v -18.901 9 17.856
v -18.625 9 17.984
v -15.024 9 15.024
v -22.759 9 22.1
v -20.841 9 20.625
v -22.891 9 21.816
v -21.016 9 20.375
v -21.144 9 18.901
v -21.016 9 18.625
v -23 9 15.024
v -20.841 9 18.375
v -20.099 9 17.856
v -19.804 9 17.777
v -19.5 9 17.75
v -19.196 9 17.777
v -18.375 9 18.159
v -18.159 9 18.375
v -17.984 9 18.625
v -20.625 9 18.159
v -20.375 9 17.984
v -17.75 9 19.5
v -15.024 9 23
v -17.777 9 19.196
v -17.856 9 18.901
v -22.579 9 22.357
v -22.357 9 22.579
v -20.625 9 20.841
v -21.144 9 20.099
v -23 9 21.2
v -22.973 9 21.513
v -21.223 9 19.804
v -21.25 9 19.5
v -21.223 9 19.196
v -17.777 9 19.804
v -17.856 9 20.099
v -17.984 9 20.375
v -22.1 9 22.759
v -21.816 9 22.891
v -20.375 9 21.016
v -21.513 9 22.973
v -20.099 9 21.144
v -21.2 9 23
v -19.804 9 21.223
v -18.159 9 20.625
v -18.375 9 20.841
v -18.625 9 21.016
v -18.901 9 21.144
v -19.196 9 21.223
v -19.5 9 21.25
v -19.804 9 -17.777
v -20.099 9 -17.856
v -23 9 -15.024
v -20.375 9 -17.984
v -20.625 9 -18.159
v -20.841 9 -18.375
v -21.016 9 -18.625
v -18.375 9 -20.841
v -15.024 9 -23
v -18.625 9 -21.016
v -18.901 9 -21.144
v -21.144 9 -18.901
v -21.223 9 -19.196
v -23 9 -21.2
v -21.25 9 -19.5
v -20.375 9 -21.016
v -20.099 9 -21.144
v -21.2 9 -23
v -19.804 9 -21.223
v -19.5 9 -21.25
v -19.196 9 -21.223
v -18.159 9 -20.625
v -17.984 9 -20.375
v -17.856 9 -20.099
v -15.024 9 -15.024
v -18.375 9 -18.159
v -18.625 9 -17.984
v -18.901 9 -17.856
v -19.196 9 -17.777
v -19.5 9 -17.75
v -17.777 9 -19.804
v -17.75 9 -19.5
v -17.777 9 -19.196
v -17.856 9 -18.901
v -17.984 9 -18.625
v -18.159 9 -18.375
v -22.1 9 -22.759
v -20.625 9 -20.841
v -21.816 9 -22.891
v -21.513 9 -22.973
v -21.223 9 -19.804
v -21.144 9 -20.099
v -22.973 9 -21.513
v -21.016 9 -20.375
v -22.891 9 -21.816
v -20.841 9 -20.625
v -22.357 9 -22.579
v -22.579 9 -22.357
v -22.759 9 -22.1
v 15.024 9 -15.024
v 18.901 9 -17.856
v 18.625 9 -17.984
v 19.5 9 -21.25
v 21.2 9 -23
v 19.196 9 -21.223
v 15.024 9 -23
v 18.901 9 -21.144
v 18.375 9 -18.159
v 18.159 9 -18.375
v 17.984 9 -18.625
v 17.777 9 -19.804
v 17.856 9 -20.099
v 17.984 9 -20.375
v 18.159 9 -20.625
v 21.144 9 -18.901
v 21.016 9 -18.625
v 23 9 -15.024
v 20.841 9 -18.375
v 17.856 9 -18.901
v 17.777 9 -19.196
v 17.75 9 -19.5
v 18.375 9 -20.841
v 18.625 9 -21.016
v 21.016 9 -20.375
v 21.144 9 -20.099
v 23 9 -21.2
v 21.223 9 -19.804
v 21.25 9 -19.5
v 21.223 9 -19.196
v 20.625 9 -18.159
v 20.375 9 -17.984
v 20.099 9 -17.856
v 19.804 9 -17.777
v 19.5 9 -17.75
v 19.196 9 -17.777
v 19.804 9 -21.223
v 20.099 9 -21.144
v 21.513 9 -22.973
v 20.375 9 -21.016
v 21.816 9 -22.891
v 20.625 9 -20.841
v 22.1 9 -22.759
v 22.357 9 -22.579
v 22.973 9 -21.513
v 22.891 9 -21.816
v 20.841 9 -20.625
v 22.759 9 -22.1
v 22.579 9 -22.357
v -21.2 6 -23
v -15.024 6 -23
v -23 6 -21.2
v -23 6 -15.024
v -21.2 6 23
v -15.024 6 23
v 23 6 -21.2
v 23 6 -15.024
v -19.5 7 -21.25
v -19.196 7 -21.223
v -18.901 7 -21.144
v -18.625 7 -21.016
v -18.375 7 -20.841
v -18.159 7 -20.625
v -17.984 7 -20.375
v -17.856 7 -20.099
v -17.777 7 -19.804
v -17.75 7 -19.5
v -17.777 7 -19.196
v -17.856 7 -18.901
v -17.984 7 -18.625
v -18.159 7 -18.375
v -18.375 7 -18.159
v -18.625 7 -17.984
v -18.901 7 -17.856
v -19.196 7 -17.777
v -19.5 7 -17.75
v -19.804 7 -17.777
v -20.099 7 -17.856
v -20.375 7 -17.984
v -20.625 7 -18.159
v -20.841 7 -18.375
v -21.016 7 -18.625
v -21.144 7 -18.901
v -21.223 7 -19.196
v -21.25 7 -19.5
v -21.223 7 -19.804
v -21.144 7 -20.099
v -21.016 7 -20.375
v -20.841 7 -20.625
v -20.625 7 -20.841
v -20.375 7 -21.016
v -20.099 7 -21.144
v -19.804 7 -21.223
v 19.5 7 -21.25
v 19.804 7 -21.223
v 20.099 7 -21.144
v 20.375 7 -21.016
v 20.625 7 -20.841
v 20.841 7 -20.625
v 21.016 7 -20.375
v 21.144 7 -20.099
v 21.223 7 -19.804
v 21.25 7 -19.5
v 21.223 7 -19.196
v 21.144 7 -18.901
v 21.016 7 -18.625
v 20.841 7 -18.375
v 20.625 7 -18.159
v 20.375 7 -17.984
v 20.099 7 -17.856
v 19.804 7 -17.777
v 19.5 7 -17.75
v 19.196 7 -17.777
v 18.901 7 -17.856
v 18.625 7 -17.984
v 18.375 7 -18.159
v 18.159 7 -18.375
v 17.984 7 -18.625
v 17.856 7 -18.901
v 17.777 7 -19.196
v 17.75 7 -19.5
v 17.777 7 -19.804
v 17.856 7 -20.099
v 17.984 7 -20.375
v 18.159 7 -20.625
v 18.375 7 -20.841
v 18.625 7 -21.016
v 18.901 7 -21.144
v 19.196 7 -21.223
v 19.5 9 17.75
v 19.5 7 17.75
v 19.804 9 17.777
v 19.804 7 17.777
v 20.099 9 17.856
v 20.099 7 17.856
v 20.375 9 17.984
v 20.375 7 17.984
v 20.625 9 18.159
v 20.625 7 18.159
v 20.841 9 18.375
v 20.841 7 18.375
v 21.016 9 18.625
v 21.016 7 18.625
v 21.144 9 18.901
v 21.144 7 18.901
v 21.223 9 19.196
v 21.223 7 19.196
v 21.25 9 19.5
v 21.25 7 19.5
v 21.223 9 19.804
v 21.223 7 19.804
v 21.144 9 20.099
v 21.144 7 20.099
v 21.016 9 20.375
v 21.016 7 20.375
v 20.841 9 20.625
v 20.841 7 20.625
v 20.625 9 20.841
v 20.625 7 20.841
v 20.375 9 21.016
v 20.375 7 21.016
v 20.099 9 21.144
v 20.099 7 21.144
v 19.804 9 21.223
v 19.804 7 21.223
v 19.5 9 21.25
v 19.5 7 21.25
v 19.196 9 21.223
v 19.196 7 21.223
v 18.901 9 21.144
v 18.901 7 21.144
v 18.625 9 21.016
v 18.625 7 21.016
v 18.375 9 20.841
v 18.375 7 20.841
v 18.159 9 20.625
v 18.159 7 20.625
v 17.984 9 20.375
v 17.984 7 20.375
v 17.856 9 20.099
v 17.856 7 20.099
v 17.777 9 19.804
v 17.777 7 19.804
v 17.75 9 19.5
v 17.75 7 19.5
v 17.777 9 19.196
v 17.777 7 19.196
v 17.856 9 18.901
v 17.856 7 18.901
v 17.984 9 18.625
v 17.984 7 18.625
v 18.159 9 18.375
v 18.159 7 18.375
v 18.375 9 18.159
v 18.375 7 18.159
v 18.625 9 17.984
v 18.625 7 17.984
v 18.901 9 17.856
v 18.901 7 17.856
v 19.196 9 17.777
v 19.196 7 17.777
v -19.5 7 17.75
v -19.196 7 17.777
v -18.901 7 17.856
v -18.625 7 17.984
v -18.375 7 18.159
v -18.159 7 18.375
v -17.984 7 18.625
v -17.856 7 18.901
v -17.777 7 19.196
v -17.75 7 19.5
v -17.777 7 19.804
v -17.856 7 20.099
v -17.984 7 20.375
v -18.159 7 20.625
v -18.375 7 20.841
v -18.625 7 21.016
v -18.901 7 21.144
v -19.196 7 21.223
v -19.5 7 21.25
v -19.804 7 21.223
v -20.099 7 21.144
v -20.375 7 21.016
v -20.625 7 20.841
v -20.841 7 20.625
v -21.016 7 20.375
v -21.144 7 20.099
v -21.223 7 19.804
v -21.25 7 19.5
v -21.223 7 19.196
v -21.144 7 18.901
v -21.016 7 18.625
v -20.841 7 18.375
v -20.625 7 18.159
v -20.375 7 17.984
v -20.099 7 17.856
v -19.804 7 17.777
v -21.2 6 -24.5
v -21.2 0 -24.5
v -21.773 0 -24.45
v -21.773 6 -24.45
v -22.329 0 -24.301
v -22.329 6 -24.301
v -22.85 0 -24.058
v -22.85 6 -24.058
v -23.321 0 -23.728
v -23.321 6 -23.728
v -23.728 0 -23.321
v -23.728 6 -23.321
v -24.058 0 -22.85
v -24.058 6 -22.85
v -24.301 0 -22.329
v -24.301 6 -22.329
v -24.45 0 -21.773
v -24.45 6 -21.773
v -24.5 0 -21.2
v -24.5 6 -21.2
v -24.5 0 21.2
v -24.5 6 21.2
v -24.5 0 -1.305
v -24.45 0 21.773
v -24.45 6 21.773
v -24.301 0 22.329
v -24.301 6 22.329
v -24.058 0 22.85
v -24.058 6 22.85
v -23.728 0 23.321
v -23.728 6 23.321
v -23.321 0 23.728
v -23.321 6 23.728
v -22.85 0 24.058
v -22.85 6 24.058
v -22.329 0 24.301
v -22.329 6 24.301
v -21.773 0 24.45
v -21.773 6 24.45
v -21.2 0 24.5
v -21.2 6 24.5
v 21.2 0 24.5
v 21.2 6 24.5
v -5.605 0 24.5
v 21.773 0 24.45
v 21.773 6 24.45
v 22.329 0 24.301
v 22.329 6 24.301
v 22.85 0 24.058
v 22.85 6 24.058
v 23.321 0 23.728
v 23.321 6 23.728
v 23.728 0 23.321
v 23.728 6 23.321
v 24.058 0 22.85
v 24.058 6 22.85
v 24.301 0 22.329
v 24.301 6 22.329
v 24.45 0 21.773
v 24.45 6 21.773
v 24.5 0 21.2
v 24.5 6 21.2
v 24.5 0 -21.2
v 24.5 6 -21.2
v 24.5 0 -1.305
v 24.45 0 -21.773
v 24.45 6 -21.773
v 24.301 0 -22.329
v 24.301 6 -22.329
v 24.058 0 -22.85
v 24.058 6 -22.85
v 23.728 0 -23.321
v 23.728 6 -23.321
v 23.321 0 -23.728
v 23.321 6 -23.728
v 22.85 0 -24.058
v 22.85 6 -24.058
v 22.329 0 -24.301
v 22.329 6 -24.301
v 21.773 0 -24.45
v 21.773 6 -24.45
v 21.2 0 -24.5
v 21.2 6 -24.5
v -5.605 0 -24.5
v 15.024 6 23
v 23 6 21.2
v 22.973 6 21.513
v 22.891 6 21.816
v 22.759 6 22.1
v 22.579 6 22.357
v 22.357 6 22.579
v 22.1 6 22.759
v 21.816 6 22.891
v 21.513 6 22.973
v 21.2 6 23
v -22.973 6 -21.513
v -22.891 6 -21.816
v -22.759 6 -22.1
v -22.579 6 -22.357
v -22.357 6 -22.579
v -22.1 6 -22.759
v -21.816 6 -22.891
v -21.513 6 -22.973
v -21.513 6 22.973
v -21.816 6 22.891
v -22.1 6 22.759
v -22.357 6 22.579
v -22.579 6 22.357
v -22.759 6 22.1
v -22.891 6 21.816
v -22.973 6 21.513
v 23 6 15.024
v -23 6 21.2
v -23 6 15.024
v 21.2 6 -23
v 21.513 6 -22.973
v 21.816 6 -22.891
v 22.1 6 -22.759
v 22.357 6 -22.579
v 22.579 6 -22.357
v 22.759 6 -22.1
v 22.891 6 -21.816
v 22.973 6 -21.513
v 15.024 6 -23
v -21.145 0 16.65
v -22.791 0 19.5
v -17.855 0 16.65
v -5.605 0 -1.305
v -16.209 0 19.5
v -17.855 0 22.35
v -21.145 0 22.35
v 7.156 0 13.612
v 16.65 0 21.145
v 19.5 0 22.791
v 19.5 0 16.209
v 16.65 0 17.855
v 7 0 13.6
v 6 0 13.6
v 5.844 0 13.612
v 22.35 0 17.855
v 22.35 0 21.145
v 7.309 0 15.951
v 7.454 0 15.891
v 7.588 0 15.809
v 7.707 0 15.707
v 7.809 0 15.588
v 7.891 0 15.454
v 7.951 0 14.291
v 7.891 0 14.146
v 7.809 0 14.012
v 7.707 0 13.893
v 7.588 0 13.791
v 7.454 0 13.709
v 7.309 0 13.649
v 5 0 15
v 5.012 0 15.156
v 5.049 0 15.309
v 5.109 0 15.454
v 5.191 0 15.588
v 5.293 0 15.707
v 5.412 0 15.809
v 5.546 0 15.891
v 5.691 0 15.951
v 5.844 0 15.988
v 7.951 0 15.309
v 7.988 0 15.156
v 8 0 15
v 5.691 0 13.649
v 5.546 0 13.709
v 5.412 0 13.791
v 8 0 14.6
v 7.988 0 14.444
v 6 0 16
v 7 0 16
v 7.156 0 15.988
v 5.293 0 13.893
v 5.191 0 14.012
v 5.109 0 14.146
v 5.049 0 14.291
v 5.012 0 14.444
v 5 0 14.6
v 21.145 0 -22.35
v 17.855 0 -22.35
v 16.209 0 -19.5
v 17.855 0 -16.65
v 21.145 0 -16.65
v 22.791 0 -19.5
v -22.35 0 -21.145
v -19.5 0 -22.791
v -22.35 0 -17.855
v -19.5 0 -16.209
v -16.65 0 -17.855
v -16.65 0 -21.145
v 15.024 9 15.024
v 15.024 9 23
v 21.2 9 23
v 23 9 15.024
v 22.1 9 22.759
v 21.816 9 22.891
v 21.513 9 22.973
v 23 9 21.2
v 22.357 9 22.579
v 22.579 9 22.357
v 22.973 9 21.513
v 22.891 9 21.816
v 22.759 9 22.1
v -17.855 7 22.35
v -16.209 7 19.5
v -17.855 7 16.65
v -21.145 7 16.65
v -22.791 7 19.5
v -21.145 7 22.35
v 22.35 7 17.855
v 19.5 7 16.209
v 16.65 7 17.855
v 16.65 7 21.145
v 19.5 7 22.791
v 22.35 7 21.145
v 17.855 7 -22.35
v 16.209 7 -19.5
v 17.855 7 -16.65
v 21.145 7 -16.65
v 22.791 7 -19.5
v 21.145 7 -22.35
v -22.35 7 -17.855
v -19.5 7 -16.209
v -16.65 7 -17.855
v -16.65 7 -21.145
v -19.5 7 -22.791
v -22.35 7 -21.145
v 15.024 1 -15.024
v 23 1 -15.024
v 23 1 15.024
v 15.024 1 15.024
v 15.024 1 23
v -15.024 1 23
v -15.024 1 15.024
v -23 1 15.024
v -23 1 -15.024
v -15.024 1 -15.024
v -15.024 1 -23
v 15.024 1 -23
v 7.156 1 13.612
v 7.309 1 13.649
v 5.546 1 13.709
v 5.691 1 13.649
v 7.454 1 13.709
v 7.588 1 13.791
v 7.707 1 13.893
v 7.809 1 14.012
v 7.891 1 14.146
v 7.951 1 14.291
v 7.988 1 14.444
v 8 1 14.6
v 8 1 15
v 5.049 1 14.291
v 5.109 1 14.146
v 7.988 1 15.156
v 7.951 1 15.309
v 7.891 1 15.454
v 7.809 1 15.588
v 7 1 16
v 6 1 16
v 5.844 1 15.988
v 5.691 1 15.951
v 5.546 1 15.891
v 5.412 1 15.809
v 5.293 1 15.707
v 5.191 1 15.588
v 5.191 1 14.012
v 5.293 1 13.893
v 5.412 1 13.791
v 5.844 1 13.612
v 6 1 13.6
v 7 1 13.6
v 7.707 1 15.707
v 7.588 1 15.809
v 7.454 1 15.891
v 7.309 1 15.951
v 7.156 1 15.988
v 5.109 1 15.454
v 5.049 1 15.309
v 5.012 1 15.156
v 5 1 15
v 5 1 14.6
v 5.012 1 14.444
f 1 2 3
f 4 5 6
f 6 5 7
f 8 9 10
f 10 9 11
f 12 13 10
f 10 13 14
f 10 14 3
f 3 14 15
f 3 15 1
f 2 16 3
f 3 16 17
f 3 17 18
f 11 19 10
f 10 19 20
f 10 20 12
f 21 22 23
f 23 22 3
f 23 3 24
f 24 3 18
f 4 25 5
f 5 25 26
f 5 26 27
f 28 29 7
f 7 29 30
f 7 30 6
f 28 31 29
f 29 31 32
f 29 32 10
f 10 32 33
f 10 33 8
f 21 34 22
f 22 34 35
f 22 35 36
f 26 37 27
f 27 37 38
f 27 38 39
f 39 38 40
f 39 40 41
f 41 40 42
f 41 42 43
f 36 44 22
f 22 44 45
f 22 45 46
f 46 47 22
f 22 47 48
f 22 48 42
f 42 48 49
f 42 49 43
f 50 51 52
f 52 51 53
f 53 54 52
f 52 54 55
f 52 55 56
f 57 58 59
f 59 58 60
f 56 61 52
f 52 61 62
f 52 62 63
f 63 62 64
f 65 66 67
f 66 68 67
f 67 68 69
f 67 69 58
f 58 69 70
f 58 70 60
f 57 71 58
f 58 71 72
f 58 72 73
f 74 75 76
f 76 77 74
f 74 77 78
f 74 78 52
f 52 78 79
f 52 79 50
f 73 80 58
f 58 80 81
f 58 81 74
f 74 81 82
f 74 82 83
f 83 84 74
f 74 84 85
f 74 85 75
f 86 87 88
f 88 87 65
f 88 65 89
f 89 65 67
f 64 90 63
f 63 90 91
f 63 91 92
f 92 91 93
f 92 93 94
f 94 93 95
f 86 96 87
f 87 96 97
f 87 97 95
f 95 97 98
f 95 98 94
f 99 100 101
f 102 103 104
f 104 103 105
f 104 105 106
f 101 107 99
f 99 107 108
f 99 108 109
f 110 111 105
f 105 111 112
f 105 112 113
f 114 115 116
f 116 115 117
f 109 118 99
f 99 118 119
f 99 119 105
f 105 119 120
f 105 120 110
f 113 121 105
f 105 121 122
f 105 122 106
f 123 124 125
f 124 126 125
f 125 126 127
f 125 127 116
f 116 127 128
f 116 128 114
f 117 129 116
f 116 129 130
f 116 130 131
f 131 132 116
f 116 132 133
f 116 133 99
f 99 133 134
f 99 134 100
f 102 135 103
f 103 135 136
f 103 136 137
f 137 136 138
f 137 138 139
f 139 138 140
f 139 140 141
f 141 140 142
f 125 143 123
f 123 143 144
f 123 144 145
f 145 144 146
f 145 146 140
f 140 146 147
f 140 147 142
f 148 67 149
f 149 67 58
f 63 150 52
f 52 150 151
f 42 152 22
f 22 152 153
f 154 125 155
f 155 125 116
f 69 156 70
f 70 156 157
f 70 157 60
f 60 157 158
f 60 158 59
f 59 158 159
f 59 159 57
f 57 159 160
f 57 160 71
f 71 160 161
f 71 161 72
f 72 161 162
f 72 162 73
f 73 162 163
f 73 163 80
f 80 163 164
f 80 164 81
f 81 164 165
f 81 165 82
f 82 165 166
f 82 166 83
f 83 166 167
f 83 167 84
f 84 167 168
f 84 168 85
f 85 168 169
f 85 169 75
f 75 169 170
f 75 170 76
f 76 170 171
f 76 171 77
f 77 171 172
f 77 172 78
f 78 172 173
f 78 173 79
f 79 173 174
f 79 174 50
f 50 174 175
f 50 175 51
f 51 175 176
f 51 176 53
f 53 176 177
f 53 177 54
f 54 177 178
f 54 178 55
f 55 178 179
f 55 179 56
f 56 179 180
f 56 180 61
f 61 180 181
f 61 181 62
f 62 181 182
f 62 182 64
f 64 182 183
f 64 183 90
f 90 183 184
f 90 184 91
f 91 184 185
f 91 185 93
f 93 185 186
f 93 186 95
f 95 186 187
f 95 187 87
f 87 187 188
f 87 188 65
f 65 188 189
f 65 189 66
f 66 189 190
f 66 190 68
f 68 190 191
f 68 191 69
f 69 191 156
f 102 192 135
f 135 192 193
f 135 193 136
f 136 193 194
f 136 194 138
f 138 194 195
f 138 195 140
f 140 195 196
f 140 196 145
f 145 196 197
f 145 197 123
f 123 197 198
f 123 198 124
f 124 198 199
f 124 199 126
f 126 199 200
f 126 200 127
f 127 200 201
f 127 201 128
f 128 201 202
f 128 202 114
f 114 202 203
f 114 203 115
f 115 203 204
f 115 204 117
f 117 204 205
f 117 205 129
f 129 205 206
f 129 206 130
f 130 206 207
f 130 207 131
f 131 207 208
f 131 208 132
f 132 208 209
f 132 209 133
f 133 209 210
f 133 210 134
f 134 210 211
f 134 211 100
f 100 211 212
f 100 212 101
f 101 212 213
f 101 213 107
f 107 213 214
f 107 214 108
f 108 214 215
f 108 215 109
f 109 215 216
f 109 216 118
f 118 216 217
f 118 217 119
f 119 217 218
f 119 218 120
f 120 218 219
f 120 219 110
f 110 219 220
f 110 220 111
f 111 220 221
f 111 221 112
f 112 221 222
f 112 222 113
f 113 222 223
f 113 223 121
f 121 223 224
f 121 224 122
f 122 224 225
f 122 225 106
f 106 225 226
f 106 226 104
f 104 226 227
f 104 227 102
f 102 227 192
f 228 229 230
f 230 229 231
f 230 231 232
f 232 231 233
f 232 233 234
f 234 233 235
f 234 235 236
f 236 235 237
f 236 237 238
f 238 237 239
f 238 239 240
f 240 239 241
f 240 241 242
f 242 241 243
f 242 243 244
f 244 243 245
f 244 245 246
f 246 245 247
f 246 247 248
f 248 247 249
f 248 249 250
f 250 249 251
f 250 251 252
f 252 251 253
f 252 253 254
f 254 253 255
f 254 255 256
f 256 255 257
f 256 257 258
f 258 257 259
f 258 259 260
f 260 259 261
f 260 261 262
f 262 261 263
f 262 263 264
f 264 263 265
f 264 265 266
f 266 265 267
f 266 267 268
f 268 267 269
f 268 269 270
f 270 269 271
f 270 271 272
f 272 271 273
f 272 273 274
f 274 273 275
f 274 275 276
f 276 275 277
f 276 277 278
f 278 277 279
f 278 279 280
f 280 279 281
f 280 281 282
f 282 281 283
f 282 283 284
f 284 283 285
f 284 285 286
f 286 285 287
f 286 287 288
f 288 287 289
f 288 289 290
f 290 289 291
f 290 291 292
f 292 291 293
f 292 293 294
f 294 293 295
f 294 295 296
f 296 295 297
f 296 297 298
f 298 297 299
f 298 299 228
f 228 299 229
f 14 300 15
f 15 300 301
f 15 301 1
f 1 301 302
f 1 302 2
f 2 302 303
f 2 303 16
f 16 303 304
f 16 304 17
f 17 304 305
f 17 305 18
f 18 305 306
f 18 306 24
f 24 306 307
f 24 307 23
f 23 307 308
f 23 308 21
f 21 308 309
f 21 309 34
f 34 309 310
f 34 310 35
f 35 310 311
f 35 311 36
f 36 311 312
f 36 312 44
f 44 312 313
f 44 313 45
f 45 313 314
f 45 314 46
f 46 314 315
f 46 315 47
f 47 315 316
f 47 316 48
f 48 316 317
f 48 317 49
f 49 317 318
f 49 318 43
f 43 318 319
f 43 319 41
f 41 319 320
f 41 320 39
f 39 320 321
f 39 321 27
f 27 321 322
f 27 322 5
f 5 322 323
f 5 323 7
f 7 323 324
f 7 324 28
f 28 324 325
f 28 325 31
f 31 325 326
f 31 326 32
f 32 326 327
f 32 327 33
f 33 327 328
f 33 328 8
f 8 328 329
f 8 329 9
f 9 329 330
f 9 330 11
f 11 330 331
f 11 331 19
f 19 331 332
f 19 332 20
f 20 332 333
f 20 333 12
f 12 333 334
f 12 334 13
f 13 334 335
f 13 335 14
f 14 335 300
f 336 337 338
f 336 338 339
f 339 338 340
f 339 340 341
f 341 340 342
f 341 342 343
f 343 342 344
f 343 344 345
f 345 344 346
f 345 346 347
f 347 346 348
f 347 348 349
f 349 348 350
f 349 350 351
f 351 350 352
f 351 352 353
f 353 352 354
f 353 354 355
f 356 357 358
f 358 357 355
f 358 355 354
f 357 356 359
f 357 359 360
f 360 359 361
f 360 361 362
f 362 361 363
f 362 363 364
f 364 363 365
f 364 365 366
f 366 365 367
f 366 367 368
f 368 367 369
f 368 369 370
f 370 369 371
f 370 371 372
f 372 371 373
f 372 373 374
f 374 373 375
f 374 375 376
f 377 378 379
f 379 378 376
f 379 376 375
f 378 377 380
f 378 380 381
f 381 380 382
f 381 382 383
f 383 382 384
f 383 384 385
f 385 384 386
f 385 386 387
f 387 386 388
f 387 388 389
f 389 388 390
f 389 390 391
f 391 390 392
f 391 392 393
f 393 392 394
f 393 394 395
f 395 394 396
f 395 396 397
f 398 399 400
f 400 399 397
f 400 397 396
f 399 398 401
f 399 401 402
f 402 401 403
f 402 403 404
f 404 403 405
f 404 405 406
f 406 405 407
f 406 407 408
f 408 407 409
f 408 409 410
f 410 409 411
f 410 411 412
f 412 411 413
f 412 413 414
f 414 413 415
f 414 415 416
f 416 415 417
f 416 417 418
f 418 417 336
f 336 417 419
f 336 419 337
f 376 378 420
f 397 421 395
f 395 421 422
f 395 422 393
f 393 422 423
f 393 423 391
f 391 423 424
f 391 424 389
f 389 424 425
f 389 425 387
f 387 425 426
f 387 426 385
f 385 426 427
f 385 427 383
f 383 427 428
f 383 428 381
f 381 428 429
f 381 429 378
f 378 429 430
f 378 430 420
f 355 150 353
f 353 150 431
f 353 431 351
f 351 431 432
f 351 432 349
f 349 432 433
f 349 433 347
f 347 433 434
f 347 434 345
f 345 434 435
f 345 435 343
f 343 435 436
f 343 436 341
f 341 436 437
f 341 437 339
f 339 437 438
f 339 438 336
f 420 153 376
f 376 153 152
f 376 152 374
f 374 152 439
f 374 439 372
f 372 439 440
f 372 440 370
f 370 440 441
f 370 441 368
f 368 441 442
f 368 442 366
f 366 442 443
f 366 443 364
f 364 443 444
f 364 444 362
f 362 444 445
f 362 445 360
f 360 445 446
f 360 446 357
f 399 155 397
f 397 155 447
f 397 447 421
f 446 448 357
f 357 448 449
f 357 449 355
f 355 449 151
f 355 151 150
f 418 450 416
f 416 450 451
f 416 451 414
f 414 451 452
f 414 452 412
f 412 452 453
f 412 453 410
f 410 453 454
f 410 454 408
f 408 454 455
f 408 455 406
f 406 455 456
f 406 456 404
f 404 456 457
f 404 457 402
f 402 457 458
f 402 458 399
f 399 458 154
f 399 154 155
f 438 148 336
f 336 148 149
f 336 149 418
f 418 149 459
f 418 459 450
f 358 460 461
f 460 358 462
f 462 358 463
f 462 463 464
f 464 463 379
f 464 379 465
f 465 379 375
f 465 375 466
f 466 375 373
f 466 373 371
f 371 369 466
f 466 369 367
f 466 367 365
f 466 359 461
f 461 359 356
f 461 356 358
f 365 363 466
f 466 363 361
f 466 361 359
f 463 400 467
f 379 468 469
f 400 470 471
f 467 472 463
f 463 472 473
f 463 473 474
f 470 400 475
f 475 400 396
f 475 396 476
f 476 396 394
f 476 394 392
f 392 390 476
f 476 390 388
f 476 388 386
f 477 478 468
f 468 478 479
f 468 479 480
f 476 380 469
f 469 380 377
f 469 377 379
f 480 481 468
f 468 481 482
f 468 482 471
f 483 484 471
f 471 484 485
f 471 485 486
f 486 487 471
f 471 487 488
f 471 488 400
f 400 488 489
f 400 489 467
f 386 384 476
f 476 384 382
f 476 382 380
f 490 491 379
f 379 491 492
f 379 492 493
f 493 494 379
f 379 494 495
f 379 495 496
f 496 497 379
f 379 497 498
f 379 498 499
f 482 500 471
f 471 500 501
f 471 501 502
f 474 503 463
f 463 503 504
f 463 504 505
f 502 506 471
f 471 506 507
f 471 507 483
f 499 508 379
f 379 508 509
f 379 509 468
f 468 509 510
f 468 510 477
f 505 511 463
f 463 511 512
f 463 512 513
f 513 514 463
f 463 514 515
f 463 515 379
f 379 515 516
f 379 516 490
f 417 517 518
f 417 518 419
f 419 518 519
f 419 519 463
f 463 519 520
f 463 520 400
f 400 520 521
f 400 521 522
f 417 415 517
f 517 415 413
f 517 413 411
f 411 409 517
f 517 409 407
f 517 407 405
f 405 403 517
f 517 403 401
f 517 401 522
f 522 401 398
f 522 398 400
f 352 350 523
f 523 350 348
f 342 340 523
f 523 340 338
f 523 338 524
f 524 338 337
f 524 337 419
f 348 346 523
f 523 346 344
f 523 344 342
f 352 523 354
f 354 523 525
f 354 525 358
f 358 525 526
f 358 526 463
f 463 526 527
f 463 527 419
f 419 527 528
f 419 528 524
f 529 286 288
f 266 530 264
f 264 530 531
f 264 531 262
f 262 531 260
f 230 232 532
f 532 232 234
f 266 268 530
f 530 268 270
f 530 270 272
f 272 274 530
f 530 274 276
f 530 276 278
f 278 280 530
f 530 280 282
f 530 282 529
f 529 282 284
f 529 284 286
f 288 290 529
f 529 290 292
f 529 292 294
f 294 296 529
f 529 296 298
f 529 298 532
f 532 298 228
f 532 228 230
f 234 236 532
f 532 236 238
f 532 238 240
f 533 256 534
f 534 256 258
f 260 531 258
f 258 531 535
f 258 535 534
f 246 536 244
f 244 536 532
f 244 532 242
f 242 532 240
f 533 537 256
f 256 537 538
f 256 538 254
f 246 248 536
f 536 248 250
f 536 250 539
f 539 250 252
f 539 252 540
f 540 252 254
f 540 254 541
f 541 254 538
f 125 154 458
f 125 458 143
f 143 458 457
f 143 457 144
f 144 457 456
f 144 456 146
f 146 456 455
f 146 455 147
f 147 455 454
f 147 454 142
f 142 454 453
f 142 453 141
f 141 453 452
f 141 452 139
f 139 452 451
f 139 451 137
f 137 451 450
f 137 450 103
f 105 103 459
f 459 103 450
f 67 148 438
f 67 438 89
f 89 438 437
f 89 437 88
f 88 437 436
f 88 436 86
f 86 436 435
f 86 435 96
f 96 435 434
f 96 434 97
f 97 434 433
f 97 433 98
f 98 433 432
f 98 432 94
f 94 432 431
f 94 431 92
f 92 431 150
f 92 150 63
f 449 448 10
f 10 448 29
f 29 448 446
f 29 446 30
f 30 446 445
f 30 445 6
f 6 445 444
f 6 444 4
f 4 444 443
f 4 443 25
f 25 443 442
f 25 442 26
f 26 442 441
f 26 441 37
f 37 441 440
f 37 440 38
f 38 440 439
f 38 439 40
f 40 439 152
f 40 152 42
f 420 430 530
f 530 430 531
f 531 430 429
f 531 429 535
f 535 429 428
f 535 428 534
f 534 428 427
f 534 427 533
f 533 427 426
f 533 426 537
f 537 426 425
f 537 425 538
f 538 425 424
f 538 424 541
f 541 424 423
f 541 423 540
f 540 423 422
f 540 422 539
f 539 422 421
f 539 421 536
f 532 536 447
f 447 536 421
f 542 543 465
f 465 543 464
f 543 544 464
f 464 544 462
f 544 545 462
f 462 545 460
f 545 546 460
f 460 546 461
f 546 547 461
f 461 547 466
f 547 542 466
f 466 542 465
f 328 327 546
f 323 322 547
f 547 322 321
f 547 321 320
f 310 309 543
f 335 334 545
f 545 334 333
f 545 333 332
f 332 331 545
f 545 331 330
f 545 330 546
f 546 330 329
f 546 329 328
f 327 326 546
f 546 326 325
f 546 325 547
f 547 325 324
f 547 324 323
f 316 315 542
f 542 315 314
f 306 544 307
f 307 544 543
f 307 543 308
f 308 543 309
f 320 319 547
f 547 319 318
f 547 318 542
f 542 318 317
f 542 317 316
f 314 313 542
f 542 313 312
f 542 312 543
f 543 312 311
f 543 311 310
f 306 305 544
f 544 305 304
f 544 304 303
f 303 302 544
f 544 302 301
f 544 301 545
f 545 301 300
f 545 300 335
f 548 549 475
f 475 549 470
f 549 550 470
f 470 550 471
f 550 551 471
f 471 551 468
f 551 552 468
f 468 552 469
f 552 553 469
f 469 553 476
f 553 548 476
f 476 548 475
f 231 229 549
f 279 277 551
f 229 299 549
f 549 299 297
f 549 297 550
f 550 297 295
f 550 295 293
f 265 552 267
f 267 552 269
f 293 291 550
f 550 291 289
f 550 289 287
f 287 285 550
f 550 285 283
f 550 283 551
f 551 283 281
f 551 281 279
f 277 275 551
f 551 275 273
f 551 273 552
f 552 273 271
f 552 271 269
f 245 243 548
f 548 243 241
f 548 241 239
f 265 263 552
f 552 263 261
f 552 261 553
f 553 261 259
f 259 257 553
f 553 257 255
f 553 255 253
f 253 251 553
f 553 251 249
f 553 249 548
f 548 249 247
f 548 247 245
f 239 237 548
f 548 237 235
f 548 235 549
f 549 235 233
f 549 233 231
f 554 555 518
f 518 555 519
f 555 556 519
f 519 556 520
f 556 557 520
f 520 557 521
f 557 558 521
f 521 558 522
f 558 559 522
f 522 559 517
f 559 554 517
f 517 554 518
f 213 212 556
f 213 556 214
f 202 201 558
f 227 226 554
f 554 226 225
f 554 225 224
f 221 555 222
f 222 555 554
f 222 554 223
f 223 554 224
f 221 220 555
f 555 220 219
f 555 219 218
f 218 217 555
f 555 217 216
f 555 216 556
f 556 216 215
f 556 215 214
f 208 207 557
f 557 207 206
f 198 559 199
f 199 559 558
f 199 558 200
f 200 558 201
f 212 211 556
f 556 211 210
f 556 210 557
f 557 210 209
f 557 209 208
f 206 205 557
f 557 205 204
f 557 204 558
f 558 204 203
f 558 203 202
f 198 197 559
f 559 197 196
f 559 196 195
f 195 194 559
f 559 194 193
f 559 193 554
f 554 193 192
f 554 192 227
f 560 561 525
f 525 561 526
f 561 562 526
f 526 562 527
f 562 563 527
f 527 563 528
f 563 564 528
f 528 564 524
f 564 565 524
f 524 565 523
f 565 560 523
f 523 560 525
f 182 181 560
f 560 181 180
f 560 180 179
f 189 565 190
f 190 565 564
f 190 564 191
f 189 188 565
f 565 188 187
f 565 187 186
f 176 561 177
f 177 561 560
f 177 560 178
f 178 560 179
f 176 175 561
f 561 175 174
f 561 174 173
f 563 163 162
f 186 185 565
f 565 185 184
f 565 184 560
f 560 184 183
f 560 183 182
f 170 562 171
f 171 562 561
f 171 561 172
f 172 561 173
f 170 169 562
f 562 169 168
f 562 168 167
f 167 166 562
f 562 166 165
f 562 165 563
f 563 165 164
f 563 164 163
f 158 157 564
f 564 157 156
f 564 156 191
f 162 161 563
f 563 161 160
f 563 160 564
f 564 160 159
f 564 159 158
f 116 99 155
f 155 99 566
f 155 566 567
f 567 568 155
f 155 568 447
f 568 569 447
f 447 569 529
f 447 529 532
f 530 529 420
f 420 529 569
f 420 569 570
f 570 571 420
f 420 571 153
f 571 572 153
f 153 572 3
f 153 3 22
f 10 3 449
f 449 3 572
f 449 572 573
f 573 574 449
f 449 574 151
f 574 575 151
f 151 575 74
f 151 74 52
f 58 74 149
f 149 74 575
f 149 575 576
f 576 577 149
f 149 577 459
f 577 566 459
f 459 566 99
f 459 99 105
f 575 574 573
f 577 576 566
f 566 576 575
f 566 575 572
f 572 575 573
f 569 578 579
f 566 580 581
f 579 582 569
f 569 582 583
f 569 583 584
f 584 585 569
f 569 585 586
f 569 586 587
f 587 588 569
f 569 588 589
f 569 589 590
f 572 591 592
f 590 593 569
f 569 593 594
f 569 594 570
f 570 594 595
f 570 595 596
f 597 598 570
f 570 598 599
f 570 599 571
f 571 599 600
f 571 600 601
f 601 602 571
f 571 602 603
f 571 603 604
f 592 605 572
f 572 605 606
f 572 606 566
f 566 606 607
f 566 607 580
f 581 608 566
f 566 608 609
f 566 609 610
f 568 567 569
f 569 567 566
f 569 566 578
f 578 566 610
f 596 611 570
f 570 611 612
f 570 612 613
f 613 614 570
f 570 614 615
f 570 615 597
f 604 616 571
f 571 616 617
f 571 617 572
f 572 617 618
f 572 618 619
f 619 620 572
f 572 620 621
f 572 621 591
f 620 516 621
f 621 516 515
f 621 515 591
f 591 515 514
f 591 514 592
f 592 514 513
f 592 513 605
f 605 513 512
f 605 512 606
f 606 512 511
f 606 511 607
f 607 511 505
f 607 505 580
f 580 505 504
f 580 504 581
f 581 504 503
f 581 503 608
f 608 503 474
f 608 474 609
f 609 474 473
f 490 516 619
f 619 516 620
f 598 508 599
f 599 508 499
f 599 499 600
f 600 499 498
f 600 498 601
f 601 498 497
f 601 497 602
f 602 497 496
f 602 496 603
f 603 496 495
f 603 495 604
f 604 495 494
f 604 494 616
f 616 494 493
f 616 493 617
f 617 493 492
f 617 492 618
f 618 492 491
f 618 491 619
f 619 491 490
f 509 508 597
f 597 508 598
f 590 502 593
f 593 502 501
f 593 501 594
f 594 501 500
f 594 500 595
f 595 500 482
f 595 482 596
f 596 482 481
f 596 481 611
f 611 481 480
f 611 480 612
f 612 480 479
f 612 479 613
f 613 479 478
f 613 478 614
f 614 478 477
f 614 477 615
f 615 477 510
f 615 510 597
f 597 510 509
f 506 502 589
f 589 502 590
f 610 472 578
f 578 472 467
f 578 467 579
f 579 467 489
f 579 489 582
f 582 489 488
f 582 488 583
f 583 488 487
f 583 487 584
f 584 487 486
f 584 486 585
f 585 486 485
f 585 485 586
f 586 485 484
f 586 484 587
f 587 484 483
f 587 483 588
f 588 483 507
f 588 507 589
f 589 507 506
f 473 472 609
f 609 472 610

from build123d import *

# Parameters (mm, degrees)
EXTRUDE_1_DEPTH     = 6
SKETCH_1_3_R        = 1.75
EXTRUDE_1_2_DEPTH   = 9
CUT_EXTRUDE_1_DEPTH = 7
SKETCH_3_W          = 7.976009827
SKETCH_3_H          = 30.047980346
SKETCH_3_W_2        = 30.047980346
SKETCH_3_H_2        = 7.976009827
CUT_EXTRUDE_2_DEPTH = 8
CUT_EXTRUDE_3_DEPTH = 5


with BuildPart() as part:
    # 草图1 → Extrude 1 (new body)
    with BuildSketch(Plane(origin=(0, 0, 0), x_dir=(1, 0, 0), z_dir=(0, 1, 0))):
        with BuildLine():
            Line((-24.5, 21.2), (-24.5, -21.2))
            ThreePointArc((-24.5, -21.2), (-23.533452378, -23.533452378), (-21.2, -24.5))
            Line((-21.2, -24.5), (21.2, -24.5))
            ThreePointArc((21.2, -24.5), (23.533452378, -23.533452378), (24.5, -21.2))
            Line((24.5, -21.2), (24.5, 21.2))
            ThreePointArc((24.5, 21.2), (23.533452378, 23.533452378), (21.2, 24.5))
            Line((21.2, 24.5), (-21.2, 24.5))
            ThreePointArc((-21.2, 24.5), (-23.533452378, 23.533452378), (-24.5, 21.2))
        make_face()
        with BuildLine():
            Line((-23, 21.2), (-23, -21.2))
            ThreePointArc((-23, -21.2), (-22.472792206, -22.472792206), (-21.2, -23))
            Line((-21.2, -23), (21.2, -23))
            ThreePointArc((21.2, -23), (22.472792206, -22.472792206), (23, -21.2))
            Line((23, -21.2), (23, 21.2))
            ThreePointArc((23, 21.2), (22.472792206, 22.472792206), (21.2, 23))
            Line((21.2, 23), (-21.2, 23))
            ThreePointArc((-21.2, 23), (-22.472792206, 22.472792206), (-23, 21.2))
        make_face(mode=Mode.SUBTRACT)
    extrude(amount=EXTRUDE_1_DEPTH)

    # 草图1<3> → Extrude 1 2 (add)
    with BuildSketch(Plane(origin=(0, 0, 0), x_dir=(1, 0, 0), z_dir=(0, 1, 0))):
        with BuildLine():
            Line((-21.2, -23), (21.2, -23))
            ThreePointArc((21.2, -23), (22.472792206, -22.472792206), (23, -21.2))
            Line((23, -21.2), (23, 21.2))
            ThreePointArc((23, 21.2), (22.472792206, 22.472792206), (21.2, 23))
            Line((21.2, 23), (-21.2, 23))
            ThreePointArc((-21.2, 23), (-22.472792206, 22.472792206), (-23, 21.2))
            Line((-23, 21.2), (-23, -21.2))
            ThreePointArc((-23, -21.2), (-22.472792206, -22.472792206), (-21.2, -23))
        make_face()
        with Locations(Location((-19.5, 19.5, 0), (0, 0, 270))):
            Circle(SKETCH_1_3_R, mode=Mode.SUBTRACT)
        with Locations(Location((19.5, 19.5, 0), (0, 0, 270))):
            Circle(SKETCH_1_3_R, mode=Mode.SUBTRACT)
        with Locations(Location((19.5, -19.5, 0), (0, 0, 270))):
            Circle(SKETCH_1_3_R, mode=Mode.SUBTRACT)
        with Locations(Location((-19.5, -19.5, 0), (0, 0, 270))):
            Circle(SKETCH_1_3_R, mode=Mode.SUBTRACT)
    extrude(amount=EXTRUDE_1_2_DEPTH)

    # 草图2 → 切除-拉伸1 (cut)
    with BuildSketch(Plane.XZ):
        Polygon((22.35, 17.854551733), (22.35, 21.145448267), (19.5, 22.790896534), (16.65, 21.145448267), (16.65, 17.854551733), (19.5, 16.209103466), align=None)
        Polygon((-17.854551733, 22.35), (-21.145448267, 22.35), (-22.790896534, 19.5), (-21.145448267, 16.65), (-17.854551733, 16.65), (-16.209103466, 19.5), align=None)
        Polygon((17.854551733, -22.35), (21.145448267, -22.35), (22.790896534, -19.5), (21.145448267, -16.65), (17.854551733, -16.65), (16.209103466, -19.5), align=None)
        Polygon((-22.35, -17.854551733), (-22.35, -21.145448267), (-19.5, -22.790896534), (-16.65, -21.145448267), (-16.65, -17.854551733), (-19.5, -16.209103466), align=None)
    extrude(amount=-CUT_EXTRUDE_1_DEPTH, mode=Mode.SUBTRACT)

    # 草图3 → 切除-拉伸2 (cut)
    with BuildSketch(Plane(origin=(0, 9, 0), x_dir=(1, 0, 0), z_dir=(0, 1, 0))):
        with Locations((19.011995087, 0)):
            Rectangle(SKETCH_3_W, SKETCH_3_H)
        with Locations((0, 19.011995087)):
            Rectangle(SKETCH_3_W_2, SKETCH_3_H_2)
        Rectangle(SKETCH_3_W_2, SKETCH_3_H)
        with Locations((0, -19.011995087)):
            Rectangle(SKETCH_3_W_2, SKETCH_3_H_2)
        with Locations((-19.011995087, 0)):
            Rectangle(SKETCH_3_W, SKETCH_3_H)
    extrude(amount=-CUT_EXTRUDE_2_DEPTH, mode=Mode.SUBTRACT)

    # 草图5 → 切除-拉伸3 (cut)
    with BuildSketch(Plane(origin=(0, 0, 0), x_dir=(-1, 0, 0), z_dir=(0, -1, 0))):
        with BuildLine():
            Line((-6, -13.6), (-7, -13.6))
            ThreePointArc((-7, -13.6), (-7.707106781, -13.892893219), (-8, -14.6))
            Line((-8, -14.6), (-8, -15))
            ThreePointArc((-8, -15), (-7.707106781, -15.707106781), (-7, -16))
            Line((-7, -16), (-6, -16))
            ThreePointArc((-6, -16), (-5.292893219, -15.707106781), (-5, -15))
            Line((-5, -15), (-5, -14.6))
            ThreePointArc((-5, -14.6), (-5.292893219, -13.892893219), (-6, -13.6))
        make_face()
    extrude(amount=-CUT_EXTRUDE_3_DEPTH, mode=Mode.SUBTRACT)


solid = part.part
